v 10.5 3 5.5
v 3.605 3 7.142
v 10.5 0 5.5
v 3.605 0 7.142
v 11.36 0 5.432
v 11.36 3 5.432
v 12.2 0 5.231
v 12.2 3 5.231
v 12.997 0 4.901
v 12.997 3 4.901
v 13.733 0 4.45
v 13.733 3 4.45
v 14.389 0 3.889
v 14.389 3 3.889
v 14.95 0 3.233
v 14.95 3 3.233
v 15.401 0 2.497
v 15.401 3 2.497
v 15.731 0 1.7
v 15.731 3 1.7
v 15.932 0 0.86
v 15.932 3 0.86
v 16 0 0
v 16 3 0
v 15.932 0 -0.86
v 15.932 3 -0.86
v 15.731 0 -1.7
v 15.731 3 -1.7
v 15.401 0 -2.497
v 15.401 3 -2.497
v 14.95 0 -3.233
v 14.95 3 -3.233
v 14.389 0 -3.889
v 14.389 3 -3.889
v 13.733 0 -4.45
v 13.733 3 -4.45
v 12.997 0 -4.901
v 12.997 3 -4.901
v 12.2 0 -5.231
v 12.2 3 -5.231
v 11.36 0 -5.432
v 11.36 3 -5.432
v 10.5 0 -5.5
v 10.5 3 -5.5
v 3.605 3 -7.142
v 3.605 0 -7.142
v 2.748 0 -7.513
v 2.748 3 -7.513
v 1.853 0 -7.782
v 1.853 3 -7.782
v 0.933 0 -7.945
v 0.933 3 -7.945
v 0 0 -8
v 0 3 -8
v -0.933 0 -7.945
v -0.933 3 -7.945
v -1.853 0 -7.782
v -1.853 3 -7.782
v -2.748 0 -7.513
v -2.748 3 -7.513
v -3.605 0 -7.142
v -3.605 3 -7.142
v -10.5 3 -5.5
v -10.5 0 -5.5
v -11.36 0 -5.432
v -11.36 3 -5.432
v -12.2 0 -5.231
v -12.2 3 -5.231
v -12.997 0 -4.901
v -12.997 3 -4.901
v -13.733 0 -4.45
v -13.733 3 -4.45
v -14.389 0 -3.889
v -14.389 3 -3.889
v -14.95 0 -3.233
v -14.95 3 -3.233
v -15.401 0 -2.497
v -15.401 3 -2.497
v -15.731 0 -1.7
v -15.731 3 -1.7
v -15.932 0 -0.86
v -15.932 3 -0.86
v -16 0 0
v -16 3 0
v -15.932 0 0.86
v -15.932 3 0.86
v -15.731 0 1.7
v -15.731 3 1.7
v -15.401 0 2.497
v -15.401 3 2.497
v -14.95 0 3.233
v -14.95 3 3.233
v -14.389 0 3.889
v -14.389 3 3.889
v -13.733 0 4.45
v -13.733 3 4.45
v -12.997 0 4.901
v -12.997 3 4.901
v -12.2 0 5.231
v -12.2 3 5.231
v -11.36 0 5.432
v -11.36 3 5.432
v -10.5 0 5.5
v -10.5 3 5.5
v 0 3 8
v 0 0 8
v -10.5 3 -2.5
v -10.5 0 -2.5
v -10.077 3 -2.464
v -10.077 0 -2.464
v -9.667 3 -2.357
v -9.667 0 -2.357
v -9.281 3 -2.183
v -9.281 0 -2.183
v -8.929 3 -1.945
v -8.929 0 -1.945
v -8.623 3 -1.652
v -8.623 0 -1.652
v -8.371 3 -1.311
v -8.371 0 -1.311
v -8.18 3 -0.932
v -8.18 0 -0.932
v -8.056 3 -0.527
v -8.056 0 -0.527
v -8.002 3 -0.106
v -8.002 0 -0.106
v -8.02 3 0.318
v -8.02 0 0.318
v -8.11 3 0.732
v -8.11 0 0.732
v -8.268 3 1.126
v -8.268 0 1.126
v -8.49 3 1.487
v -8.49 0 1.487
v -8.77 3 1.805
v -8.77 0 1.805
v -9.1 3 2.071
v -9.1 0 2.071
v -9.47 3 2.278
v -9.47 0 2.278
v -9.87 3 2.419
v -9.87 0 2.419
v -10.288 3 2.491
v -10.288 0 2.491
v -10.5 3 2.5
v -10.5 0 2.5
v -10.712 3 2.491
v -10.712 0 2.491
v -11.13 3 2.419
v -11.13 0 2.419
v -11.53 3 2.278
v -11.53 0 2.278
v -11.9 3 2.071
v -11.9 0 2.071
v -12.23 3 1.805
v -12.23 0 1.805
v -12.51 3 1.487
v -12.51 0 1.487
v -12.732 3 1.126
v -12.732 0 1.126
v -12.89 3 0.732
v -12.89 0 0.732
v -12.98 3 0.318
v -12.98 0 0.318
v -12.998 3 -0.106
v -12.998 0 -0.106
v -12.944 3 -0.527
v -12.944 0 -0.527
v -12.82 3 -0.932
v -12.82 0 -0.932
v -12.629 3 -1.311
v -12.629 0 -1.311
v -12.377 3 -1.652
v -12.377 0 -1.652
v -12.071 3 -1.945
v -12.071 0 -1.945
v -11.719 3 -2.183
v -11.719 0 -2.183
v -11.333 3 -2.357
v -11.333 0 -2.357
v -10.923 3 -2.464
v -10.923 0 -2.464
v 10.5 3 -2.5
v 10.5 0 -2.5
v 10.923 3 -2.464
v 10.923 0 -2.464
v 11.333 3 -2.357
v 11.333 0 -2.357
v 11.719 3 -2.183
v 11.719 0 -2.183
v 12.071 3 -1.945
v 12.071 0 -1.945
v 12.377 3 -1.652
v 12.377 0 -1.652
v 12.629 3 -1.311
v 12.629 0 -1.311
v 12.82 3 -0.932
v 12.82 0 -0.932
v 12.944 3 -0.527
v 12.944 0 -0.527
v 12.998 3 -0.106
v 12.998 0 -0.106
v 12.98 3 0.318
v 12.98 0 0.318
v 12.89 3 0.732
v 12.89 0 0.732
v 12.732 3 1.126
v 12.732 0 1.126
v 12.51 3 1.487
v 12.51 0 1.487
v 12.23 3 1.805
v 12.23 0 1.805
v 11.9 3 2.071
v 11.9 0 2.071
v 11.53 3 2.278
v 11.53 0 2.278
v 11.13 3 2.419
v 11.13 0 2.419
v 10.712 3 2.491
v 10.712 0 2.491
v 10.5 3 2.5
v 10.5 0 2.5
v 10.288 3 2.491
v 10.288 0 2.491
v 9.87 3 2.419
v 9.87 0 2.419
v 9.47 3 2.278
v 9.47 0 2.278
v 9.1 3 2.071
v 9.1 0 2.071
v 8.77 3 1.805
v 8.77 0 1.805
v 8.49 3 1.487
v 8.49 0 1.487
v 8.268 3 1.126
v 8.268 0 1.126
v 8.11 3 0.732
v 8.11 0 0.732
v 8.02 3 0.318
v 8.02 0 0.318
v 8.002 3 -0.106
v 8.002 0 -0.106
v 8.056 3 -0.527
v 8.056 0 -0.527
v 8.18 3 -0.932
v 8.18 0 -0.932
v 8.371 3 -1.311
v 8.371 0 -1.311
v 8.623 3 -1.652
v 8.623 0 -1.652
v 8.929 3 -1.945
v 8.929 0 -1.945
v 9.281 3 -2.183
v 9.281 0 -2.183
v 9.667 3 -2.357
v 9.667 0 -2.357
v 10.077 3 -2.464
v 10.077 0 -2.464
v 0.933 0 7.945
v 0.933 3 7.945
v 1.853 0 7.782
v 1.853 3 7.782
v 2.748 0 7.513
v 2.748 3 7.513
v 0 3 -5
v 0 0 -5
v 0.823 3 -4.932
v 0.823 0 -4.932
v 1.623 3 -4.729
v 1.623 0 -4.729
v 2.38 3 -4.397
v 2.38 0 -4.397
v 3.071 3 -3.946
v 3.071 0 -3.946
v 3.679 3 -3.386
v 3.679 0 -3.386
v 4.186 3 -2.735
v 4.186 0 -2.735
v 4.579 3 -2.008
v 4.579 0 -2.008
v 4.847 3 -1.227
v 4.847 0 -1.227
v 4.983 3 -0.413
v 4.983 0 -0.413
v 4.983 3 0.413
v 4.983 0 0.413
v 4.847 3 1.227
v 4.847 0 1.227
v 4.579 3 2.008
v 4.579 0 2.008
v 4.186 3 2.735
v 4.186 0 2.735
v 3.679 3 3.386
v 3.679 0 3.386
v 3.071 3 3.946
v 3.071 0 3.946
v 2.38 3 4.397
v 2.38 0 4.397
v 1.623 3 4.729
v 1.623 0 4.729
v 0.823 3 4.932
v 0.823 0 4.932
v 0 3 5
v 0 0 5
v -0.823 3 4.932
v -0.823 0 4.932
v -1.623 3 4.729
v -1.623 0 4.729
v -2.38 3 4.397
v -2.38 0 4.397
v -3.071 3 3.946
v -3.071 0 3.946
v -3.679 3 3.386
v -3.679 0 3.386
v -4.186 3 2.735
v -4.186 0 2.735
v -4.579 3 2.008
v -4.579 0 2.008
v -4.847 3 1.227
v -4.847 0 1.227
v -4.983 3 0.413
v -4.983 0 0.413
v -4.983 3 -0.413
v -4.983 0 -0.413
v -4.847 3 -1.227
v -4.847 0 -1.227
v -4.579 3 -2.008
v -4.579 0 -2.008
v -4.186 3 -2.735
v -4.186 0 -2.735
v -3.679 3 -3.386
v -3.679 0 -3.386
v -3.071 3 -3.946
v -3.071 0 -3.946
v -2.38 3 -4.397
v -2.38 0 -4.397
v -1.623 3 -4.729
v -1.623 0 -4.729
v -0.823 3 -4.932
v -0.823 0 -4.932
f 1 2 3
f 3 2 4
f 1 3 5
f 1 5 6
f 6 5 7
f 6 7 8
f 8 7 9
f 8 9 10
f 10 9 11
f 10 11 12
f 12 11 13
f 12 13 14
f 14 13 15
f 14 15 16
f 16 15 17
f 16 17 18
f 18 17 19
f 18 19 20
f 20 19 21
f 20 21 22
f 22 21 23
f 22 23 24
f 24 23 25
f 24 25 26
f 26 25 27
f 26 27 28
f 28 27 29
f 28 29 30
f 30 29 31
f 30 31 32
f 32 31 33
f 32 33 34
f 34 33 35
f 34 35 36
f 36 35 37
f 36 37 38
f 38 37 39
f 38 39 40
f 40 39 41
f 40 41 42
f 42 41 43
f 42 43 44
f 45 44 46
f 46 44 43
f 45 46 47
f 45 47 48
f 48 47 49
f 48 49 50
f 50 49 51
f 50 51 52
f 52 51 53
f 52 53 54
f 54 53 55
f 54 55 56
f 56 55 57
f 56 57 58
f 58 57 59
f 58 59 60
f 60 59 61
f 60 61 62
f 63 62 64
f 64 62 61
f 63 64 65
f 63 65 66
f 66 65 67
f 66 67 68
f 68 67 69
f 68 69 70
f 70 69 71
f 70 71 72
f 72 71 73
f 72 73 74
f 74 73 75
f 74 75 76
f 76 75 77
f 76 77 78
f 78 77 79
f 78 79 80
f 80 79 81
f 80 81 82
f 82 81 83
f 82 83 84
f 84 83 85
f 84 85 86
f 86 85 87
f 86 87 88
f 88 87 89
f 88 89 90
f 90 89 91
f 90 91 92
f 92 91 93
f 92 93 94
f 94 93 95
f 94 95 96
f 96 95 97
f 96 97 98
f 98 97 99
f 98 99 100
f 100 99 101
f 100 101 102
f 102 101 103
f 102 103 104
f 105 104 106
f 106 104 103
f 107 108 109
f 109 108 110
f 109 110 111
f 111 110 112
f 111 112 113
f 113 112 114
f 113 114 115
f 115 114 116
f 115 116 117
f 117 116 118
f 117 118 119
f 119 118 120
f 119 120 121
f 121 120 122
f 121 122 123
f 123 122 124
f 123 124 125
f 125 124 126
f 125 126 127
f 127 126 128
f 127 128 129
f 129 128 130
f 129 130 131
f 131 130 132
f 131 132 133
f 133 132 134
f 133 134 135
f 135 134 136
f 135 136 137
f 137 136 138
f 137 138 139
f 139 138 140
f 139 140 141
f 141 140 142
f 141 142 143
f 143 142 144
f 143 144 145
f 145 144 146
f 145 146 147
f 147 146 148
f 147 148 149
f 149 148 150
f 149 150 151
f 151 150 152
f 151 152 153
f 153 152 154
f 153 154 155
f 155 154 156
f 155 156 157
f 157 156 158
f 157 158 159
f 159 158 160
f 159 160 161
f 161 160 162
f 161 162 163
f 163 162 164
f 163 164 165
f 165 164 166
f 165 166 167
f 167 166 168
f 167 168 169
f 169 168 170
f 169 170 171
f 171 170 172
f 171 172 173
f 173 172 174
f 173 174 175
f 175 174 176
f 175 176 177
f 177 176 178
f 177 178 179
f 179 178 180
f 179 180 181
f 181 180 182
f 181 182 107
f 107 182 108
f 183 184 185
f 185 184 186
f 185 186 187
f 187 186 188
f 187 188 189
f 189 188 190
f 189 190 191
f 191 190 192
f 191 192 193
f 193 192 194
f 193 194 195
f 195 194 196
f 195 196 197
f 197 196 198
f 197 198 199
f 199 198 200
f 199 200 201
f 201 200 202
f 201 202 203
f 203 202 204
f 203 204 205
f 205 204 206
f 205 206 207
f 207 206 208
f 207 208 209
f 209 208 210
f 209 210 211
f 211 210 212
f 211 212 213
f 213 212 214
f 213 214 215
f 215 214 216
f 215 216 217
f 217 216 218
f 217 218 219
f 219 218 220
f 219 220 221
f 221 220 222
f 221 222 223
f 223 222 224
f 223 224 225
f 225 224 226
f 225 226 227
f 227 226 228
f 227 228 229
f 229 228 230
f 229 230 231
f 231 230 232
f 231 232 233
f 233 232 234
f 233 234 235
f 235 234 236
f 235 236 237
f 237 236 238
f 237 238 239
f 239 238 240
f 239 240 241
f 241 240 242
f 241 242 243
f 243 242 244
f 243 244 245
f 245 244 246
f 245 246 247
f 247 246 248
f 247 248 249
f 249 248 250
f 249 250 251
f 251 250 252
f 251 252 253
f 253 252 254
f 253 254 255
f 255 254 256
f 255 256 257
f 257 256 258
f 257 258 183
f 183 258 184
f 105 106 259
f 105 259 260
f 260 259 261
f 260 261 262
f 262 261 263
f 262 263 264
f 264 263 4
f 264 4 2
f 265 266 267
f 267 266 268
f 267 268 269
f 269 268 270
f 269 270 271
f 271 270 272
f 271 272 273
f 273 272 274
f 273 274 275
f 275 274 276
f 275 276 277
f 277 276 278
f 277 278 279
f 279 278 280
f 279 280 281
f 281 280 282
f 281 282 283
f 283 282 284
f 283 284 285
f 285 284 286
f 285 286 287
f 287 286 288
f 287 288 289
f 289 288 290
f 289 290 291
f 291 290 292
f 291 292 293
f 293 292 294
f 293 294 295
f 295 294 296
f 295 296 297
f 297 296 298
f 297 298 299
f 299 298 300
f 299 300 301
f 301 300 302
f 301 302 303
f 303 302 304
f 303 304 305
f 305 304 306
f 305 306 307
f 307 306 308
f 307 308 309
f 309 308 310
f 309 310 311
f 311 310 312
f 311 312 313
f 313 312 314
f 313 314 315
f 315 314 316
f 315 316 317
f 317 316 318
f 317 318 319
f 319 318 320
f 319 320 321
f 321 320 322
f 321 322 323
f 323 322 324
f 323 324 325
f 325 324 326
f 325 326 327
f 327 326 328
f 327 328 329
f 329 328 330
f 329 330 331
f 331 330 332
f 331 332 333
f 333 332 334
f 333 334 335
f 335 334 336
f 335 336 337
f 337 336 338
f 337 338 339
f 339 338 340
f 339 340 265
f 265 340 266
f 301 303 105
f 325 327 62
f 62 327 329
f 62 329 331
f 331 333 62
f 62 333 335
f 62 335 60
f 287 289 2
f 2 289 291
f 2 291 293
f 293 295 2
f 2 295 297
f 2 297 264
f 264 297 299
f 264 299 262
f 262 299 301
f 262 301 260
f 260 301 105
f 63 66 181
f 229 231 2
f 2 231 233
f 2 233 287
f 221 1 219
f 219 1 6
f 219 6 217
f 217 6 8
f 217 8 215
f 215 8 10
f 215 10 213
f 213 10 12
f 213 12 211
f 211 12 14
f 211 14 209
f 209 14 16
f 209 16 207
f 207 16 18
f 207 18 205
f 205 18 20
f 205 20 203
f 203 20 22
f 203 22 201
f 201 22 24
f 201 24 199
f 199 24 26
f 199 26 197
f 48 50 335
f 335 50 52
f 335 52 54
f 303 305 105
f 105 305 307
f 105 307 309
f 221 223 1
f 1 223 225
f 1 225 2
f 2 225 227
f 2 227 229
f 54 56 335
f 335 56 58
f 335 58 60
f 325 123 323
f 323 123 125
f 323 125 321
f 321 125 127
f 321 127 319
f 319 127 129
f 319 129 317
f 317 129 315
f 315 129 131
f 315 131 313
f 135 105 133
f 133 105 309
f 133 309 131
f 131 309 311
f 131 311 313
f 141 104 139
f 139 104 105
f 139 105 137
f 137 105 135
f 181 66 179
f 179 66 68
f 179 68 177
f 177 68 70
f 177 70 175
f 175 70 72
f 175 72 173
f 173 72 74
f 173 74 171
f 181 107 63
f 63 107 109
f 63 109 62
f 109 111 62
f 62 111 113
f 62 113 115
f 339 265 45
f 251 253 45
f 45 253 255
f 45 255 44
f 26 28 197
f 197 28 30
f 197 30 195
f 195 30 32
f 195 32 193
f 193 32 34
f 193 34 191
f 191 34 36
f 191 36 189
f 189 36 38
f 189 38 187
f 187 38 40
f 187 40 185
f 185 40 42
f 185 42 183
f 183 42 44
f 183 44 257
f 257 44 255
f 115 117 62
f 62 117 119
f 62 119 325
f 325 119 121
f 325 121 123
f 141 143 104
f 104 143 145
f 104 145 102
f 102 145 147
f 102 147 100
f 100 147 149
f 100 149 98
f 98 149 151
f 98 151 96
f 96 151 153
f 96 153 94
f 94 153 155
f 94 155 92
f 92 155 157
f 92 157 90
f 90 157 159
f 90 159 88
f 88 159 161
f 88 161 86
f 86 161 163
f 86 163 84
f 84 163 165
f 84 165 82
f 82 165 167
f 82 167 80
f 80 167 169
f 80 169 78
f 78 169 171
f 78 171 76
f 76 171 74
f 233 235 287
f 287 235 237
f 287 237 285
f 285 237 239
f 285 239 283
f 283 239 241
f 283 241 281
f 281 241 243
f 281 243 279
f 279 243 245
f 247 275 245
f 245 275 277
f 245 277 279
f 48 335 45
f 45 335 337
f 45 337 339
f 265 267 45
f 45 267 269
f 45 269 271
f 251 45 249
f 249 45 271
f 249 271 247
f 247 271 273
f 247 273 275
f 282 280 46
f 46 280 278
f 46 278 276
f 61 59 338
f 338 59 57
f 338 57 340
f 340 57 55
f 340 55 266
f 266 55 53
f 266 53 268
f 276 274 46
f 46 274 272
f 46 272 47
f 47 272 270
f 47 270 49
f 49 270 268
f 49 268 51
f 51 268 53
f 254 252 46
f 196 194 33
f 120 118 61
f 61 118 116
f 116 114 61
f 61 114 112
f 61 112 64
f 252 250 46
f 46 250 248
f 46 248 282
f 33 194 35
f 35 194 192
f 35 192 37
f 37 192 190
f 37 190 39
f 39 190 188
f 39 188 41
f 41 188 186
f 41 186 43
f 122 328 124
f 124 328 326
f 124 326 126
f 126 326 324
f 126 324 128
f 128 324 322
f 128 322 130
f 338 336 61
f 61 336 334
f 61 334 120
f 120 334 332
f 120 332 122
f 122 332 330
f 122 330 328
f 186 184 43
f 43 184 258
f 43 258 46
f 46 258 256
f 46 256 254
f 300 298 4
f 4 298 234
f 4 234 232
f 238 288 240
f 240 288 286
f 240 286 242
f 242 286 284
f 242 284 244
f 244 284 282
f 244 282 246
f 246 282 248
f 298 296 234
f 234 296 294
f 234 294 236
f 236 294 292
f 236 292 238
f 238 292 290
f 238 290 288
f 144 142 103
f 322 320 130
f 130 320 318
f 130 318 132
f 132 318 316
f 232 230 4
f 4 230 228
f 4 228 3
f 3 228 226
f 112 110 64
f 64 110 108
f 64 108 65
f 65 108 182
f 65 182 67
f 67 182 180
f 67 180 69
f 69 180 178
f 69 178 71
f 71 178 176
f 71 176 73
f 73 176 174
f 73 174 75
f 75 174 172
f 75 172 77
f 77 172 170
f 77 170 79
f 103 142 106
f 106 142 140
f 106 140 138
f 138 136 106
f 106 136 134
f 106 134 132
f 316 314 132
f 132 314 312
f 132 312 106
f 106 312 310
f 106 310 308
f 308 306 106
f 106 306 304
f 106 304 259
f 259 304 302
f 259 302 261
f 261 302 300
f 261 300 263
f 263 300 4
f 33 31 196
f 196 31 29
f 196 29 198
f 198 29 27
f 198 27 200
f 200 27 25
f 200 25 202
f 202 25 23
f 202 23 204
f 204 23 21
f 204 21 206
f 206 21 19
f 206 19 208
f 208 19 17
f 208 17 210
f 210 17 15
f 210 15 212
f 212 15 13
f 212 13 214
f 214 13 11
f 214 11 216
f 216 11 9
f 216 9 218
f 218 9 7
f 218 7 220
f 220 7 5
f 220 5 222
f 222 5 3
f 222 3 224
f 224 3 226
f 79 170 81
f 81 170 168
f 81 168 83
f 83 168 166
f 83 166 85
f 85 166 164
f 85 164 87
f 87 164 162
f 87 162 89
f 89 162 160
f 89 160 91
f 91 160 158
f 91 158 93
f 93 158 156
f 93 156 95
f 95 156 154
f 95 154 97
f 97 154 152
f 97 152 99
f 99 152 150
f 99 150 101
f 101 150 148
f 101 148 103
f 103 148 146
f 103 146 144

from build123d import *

# Parameters (mm, degrees)
ESQUISSE1_R        = 2.5
ESQUISSE1_R_2      = 5
BOSS_EXTRU_2_DEPTH = 3


with BuildPart() as part:
    # Esquisse1 → Boss.-Extru.2 (new body)
    with BuildSketch(Plane(origin=(0, 0, 0), x_dir=(1, 0, 0), z_dir=(0, 1, 0))):
        with BuildLine():
            ThreePointArc((0, -8), (1.852964218, -7.782449717), (3.605150215, -7.141630901))
            Line((3.605150215, -7.141630901), (10.5, -5.5))
            ThreePointArc((10.5, -5.5), (16, 0), (10.5, 5.5))
            Line((10.5, 5.5), (3.605150215, 7.141630901))
            ThreePointArc((3.605150215, 7.141630901), (0, 8), (-3.605150215, 7.141630901))
            Line((-3.605150215, 7.141630901), (-10.5, 5.5))
            ThreePointArc((-10.5, 5.5), (-16, 0), (-10.5, -5.5))
            Line((-10.5, -5.5), (0, -8))
        make_face()
        with Locations((-10.5, 0)):
            Circle(ESQUISSE1_R, mode=Mode.SUBTRACT)
        Circle(ESQUISSE1_R_2, mode=Mode.SUBTRACT)
        with Locations((10.5, 0)):
            Circle(ESQUISSE1_R, mode=Mode.SUBTRACT)
    extrude(amount=BOSS_EXTRU_2_DEPTH)


solid = part.part
